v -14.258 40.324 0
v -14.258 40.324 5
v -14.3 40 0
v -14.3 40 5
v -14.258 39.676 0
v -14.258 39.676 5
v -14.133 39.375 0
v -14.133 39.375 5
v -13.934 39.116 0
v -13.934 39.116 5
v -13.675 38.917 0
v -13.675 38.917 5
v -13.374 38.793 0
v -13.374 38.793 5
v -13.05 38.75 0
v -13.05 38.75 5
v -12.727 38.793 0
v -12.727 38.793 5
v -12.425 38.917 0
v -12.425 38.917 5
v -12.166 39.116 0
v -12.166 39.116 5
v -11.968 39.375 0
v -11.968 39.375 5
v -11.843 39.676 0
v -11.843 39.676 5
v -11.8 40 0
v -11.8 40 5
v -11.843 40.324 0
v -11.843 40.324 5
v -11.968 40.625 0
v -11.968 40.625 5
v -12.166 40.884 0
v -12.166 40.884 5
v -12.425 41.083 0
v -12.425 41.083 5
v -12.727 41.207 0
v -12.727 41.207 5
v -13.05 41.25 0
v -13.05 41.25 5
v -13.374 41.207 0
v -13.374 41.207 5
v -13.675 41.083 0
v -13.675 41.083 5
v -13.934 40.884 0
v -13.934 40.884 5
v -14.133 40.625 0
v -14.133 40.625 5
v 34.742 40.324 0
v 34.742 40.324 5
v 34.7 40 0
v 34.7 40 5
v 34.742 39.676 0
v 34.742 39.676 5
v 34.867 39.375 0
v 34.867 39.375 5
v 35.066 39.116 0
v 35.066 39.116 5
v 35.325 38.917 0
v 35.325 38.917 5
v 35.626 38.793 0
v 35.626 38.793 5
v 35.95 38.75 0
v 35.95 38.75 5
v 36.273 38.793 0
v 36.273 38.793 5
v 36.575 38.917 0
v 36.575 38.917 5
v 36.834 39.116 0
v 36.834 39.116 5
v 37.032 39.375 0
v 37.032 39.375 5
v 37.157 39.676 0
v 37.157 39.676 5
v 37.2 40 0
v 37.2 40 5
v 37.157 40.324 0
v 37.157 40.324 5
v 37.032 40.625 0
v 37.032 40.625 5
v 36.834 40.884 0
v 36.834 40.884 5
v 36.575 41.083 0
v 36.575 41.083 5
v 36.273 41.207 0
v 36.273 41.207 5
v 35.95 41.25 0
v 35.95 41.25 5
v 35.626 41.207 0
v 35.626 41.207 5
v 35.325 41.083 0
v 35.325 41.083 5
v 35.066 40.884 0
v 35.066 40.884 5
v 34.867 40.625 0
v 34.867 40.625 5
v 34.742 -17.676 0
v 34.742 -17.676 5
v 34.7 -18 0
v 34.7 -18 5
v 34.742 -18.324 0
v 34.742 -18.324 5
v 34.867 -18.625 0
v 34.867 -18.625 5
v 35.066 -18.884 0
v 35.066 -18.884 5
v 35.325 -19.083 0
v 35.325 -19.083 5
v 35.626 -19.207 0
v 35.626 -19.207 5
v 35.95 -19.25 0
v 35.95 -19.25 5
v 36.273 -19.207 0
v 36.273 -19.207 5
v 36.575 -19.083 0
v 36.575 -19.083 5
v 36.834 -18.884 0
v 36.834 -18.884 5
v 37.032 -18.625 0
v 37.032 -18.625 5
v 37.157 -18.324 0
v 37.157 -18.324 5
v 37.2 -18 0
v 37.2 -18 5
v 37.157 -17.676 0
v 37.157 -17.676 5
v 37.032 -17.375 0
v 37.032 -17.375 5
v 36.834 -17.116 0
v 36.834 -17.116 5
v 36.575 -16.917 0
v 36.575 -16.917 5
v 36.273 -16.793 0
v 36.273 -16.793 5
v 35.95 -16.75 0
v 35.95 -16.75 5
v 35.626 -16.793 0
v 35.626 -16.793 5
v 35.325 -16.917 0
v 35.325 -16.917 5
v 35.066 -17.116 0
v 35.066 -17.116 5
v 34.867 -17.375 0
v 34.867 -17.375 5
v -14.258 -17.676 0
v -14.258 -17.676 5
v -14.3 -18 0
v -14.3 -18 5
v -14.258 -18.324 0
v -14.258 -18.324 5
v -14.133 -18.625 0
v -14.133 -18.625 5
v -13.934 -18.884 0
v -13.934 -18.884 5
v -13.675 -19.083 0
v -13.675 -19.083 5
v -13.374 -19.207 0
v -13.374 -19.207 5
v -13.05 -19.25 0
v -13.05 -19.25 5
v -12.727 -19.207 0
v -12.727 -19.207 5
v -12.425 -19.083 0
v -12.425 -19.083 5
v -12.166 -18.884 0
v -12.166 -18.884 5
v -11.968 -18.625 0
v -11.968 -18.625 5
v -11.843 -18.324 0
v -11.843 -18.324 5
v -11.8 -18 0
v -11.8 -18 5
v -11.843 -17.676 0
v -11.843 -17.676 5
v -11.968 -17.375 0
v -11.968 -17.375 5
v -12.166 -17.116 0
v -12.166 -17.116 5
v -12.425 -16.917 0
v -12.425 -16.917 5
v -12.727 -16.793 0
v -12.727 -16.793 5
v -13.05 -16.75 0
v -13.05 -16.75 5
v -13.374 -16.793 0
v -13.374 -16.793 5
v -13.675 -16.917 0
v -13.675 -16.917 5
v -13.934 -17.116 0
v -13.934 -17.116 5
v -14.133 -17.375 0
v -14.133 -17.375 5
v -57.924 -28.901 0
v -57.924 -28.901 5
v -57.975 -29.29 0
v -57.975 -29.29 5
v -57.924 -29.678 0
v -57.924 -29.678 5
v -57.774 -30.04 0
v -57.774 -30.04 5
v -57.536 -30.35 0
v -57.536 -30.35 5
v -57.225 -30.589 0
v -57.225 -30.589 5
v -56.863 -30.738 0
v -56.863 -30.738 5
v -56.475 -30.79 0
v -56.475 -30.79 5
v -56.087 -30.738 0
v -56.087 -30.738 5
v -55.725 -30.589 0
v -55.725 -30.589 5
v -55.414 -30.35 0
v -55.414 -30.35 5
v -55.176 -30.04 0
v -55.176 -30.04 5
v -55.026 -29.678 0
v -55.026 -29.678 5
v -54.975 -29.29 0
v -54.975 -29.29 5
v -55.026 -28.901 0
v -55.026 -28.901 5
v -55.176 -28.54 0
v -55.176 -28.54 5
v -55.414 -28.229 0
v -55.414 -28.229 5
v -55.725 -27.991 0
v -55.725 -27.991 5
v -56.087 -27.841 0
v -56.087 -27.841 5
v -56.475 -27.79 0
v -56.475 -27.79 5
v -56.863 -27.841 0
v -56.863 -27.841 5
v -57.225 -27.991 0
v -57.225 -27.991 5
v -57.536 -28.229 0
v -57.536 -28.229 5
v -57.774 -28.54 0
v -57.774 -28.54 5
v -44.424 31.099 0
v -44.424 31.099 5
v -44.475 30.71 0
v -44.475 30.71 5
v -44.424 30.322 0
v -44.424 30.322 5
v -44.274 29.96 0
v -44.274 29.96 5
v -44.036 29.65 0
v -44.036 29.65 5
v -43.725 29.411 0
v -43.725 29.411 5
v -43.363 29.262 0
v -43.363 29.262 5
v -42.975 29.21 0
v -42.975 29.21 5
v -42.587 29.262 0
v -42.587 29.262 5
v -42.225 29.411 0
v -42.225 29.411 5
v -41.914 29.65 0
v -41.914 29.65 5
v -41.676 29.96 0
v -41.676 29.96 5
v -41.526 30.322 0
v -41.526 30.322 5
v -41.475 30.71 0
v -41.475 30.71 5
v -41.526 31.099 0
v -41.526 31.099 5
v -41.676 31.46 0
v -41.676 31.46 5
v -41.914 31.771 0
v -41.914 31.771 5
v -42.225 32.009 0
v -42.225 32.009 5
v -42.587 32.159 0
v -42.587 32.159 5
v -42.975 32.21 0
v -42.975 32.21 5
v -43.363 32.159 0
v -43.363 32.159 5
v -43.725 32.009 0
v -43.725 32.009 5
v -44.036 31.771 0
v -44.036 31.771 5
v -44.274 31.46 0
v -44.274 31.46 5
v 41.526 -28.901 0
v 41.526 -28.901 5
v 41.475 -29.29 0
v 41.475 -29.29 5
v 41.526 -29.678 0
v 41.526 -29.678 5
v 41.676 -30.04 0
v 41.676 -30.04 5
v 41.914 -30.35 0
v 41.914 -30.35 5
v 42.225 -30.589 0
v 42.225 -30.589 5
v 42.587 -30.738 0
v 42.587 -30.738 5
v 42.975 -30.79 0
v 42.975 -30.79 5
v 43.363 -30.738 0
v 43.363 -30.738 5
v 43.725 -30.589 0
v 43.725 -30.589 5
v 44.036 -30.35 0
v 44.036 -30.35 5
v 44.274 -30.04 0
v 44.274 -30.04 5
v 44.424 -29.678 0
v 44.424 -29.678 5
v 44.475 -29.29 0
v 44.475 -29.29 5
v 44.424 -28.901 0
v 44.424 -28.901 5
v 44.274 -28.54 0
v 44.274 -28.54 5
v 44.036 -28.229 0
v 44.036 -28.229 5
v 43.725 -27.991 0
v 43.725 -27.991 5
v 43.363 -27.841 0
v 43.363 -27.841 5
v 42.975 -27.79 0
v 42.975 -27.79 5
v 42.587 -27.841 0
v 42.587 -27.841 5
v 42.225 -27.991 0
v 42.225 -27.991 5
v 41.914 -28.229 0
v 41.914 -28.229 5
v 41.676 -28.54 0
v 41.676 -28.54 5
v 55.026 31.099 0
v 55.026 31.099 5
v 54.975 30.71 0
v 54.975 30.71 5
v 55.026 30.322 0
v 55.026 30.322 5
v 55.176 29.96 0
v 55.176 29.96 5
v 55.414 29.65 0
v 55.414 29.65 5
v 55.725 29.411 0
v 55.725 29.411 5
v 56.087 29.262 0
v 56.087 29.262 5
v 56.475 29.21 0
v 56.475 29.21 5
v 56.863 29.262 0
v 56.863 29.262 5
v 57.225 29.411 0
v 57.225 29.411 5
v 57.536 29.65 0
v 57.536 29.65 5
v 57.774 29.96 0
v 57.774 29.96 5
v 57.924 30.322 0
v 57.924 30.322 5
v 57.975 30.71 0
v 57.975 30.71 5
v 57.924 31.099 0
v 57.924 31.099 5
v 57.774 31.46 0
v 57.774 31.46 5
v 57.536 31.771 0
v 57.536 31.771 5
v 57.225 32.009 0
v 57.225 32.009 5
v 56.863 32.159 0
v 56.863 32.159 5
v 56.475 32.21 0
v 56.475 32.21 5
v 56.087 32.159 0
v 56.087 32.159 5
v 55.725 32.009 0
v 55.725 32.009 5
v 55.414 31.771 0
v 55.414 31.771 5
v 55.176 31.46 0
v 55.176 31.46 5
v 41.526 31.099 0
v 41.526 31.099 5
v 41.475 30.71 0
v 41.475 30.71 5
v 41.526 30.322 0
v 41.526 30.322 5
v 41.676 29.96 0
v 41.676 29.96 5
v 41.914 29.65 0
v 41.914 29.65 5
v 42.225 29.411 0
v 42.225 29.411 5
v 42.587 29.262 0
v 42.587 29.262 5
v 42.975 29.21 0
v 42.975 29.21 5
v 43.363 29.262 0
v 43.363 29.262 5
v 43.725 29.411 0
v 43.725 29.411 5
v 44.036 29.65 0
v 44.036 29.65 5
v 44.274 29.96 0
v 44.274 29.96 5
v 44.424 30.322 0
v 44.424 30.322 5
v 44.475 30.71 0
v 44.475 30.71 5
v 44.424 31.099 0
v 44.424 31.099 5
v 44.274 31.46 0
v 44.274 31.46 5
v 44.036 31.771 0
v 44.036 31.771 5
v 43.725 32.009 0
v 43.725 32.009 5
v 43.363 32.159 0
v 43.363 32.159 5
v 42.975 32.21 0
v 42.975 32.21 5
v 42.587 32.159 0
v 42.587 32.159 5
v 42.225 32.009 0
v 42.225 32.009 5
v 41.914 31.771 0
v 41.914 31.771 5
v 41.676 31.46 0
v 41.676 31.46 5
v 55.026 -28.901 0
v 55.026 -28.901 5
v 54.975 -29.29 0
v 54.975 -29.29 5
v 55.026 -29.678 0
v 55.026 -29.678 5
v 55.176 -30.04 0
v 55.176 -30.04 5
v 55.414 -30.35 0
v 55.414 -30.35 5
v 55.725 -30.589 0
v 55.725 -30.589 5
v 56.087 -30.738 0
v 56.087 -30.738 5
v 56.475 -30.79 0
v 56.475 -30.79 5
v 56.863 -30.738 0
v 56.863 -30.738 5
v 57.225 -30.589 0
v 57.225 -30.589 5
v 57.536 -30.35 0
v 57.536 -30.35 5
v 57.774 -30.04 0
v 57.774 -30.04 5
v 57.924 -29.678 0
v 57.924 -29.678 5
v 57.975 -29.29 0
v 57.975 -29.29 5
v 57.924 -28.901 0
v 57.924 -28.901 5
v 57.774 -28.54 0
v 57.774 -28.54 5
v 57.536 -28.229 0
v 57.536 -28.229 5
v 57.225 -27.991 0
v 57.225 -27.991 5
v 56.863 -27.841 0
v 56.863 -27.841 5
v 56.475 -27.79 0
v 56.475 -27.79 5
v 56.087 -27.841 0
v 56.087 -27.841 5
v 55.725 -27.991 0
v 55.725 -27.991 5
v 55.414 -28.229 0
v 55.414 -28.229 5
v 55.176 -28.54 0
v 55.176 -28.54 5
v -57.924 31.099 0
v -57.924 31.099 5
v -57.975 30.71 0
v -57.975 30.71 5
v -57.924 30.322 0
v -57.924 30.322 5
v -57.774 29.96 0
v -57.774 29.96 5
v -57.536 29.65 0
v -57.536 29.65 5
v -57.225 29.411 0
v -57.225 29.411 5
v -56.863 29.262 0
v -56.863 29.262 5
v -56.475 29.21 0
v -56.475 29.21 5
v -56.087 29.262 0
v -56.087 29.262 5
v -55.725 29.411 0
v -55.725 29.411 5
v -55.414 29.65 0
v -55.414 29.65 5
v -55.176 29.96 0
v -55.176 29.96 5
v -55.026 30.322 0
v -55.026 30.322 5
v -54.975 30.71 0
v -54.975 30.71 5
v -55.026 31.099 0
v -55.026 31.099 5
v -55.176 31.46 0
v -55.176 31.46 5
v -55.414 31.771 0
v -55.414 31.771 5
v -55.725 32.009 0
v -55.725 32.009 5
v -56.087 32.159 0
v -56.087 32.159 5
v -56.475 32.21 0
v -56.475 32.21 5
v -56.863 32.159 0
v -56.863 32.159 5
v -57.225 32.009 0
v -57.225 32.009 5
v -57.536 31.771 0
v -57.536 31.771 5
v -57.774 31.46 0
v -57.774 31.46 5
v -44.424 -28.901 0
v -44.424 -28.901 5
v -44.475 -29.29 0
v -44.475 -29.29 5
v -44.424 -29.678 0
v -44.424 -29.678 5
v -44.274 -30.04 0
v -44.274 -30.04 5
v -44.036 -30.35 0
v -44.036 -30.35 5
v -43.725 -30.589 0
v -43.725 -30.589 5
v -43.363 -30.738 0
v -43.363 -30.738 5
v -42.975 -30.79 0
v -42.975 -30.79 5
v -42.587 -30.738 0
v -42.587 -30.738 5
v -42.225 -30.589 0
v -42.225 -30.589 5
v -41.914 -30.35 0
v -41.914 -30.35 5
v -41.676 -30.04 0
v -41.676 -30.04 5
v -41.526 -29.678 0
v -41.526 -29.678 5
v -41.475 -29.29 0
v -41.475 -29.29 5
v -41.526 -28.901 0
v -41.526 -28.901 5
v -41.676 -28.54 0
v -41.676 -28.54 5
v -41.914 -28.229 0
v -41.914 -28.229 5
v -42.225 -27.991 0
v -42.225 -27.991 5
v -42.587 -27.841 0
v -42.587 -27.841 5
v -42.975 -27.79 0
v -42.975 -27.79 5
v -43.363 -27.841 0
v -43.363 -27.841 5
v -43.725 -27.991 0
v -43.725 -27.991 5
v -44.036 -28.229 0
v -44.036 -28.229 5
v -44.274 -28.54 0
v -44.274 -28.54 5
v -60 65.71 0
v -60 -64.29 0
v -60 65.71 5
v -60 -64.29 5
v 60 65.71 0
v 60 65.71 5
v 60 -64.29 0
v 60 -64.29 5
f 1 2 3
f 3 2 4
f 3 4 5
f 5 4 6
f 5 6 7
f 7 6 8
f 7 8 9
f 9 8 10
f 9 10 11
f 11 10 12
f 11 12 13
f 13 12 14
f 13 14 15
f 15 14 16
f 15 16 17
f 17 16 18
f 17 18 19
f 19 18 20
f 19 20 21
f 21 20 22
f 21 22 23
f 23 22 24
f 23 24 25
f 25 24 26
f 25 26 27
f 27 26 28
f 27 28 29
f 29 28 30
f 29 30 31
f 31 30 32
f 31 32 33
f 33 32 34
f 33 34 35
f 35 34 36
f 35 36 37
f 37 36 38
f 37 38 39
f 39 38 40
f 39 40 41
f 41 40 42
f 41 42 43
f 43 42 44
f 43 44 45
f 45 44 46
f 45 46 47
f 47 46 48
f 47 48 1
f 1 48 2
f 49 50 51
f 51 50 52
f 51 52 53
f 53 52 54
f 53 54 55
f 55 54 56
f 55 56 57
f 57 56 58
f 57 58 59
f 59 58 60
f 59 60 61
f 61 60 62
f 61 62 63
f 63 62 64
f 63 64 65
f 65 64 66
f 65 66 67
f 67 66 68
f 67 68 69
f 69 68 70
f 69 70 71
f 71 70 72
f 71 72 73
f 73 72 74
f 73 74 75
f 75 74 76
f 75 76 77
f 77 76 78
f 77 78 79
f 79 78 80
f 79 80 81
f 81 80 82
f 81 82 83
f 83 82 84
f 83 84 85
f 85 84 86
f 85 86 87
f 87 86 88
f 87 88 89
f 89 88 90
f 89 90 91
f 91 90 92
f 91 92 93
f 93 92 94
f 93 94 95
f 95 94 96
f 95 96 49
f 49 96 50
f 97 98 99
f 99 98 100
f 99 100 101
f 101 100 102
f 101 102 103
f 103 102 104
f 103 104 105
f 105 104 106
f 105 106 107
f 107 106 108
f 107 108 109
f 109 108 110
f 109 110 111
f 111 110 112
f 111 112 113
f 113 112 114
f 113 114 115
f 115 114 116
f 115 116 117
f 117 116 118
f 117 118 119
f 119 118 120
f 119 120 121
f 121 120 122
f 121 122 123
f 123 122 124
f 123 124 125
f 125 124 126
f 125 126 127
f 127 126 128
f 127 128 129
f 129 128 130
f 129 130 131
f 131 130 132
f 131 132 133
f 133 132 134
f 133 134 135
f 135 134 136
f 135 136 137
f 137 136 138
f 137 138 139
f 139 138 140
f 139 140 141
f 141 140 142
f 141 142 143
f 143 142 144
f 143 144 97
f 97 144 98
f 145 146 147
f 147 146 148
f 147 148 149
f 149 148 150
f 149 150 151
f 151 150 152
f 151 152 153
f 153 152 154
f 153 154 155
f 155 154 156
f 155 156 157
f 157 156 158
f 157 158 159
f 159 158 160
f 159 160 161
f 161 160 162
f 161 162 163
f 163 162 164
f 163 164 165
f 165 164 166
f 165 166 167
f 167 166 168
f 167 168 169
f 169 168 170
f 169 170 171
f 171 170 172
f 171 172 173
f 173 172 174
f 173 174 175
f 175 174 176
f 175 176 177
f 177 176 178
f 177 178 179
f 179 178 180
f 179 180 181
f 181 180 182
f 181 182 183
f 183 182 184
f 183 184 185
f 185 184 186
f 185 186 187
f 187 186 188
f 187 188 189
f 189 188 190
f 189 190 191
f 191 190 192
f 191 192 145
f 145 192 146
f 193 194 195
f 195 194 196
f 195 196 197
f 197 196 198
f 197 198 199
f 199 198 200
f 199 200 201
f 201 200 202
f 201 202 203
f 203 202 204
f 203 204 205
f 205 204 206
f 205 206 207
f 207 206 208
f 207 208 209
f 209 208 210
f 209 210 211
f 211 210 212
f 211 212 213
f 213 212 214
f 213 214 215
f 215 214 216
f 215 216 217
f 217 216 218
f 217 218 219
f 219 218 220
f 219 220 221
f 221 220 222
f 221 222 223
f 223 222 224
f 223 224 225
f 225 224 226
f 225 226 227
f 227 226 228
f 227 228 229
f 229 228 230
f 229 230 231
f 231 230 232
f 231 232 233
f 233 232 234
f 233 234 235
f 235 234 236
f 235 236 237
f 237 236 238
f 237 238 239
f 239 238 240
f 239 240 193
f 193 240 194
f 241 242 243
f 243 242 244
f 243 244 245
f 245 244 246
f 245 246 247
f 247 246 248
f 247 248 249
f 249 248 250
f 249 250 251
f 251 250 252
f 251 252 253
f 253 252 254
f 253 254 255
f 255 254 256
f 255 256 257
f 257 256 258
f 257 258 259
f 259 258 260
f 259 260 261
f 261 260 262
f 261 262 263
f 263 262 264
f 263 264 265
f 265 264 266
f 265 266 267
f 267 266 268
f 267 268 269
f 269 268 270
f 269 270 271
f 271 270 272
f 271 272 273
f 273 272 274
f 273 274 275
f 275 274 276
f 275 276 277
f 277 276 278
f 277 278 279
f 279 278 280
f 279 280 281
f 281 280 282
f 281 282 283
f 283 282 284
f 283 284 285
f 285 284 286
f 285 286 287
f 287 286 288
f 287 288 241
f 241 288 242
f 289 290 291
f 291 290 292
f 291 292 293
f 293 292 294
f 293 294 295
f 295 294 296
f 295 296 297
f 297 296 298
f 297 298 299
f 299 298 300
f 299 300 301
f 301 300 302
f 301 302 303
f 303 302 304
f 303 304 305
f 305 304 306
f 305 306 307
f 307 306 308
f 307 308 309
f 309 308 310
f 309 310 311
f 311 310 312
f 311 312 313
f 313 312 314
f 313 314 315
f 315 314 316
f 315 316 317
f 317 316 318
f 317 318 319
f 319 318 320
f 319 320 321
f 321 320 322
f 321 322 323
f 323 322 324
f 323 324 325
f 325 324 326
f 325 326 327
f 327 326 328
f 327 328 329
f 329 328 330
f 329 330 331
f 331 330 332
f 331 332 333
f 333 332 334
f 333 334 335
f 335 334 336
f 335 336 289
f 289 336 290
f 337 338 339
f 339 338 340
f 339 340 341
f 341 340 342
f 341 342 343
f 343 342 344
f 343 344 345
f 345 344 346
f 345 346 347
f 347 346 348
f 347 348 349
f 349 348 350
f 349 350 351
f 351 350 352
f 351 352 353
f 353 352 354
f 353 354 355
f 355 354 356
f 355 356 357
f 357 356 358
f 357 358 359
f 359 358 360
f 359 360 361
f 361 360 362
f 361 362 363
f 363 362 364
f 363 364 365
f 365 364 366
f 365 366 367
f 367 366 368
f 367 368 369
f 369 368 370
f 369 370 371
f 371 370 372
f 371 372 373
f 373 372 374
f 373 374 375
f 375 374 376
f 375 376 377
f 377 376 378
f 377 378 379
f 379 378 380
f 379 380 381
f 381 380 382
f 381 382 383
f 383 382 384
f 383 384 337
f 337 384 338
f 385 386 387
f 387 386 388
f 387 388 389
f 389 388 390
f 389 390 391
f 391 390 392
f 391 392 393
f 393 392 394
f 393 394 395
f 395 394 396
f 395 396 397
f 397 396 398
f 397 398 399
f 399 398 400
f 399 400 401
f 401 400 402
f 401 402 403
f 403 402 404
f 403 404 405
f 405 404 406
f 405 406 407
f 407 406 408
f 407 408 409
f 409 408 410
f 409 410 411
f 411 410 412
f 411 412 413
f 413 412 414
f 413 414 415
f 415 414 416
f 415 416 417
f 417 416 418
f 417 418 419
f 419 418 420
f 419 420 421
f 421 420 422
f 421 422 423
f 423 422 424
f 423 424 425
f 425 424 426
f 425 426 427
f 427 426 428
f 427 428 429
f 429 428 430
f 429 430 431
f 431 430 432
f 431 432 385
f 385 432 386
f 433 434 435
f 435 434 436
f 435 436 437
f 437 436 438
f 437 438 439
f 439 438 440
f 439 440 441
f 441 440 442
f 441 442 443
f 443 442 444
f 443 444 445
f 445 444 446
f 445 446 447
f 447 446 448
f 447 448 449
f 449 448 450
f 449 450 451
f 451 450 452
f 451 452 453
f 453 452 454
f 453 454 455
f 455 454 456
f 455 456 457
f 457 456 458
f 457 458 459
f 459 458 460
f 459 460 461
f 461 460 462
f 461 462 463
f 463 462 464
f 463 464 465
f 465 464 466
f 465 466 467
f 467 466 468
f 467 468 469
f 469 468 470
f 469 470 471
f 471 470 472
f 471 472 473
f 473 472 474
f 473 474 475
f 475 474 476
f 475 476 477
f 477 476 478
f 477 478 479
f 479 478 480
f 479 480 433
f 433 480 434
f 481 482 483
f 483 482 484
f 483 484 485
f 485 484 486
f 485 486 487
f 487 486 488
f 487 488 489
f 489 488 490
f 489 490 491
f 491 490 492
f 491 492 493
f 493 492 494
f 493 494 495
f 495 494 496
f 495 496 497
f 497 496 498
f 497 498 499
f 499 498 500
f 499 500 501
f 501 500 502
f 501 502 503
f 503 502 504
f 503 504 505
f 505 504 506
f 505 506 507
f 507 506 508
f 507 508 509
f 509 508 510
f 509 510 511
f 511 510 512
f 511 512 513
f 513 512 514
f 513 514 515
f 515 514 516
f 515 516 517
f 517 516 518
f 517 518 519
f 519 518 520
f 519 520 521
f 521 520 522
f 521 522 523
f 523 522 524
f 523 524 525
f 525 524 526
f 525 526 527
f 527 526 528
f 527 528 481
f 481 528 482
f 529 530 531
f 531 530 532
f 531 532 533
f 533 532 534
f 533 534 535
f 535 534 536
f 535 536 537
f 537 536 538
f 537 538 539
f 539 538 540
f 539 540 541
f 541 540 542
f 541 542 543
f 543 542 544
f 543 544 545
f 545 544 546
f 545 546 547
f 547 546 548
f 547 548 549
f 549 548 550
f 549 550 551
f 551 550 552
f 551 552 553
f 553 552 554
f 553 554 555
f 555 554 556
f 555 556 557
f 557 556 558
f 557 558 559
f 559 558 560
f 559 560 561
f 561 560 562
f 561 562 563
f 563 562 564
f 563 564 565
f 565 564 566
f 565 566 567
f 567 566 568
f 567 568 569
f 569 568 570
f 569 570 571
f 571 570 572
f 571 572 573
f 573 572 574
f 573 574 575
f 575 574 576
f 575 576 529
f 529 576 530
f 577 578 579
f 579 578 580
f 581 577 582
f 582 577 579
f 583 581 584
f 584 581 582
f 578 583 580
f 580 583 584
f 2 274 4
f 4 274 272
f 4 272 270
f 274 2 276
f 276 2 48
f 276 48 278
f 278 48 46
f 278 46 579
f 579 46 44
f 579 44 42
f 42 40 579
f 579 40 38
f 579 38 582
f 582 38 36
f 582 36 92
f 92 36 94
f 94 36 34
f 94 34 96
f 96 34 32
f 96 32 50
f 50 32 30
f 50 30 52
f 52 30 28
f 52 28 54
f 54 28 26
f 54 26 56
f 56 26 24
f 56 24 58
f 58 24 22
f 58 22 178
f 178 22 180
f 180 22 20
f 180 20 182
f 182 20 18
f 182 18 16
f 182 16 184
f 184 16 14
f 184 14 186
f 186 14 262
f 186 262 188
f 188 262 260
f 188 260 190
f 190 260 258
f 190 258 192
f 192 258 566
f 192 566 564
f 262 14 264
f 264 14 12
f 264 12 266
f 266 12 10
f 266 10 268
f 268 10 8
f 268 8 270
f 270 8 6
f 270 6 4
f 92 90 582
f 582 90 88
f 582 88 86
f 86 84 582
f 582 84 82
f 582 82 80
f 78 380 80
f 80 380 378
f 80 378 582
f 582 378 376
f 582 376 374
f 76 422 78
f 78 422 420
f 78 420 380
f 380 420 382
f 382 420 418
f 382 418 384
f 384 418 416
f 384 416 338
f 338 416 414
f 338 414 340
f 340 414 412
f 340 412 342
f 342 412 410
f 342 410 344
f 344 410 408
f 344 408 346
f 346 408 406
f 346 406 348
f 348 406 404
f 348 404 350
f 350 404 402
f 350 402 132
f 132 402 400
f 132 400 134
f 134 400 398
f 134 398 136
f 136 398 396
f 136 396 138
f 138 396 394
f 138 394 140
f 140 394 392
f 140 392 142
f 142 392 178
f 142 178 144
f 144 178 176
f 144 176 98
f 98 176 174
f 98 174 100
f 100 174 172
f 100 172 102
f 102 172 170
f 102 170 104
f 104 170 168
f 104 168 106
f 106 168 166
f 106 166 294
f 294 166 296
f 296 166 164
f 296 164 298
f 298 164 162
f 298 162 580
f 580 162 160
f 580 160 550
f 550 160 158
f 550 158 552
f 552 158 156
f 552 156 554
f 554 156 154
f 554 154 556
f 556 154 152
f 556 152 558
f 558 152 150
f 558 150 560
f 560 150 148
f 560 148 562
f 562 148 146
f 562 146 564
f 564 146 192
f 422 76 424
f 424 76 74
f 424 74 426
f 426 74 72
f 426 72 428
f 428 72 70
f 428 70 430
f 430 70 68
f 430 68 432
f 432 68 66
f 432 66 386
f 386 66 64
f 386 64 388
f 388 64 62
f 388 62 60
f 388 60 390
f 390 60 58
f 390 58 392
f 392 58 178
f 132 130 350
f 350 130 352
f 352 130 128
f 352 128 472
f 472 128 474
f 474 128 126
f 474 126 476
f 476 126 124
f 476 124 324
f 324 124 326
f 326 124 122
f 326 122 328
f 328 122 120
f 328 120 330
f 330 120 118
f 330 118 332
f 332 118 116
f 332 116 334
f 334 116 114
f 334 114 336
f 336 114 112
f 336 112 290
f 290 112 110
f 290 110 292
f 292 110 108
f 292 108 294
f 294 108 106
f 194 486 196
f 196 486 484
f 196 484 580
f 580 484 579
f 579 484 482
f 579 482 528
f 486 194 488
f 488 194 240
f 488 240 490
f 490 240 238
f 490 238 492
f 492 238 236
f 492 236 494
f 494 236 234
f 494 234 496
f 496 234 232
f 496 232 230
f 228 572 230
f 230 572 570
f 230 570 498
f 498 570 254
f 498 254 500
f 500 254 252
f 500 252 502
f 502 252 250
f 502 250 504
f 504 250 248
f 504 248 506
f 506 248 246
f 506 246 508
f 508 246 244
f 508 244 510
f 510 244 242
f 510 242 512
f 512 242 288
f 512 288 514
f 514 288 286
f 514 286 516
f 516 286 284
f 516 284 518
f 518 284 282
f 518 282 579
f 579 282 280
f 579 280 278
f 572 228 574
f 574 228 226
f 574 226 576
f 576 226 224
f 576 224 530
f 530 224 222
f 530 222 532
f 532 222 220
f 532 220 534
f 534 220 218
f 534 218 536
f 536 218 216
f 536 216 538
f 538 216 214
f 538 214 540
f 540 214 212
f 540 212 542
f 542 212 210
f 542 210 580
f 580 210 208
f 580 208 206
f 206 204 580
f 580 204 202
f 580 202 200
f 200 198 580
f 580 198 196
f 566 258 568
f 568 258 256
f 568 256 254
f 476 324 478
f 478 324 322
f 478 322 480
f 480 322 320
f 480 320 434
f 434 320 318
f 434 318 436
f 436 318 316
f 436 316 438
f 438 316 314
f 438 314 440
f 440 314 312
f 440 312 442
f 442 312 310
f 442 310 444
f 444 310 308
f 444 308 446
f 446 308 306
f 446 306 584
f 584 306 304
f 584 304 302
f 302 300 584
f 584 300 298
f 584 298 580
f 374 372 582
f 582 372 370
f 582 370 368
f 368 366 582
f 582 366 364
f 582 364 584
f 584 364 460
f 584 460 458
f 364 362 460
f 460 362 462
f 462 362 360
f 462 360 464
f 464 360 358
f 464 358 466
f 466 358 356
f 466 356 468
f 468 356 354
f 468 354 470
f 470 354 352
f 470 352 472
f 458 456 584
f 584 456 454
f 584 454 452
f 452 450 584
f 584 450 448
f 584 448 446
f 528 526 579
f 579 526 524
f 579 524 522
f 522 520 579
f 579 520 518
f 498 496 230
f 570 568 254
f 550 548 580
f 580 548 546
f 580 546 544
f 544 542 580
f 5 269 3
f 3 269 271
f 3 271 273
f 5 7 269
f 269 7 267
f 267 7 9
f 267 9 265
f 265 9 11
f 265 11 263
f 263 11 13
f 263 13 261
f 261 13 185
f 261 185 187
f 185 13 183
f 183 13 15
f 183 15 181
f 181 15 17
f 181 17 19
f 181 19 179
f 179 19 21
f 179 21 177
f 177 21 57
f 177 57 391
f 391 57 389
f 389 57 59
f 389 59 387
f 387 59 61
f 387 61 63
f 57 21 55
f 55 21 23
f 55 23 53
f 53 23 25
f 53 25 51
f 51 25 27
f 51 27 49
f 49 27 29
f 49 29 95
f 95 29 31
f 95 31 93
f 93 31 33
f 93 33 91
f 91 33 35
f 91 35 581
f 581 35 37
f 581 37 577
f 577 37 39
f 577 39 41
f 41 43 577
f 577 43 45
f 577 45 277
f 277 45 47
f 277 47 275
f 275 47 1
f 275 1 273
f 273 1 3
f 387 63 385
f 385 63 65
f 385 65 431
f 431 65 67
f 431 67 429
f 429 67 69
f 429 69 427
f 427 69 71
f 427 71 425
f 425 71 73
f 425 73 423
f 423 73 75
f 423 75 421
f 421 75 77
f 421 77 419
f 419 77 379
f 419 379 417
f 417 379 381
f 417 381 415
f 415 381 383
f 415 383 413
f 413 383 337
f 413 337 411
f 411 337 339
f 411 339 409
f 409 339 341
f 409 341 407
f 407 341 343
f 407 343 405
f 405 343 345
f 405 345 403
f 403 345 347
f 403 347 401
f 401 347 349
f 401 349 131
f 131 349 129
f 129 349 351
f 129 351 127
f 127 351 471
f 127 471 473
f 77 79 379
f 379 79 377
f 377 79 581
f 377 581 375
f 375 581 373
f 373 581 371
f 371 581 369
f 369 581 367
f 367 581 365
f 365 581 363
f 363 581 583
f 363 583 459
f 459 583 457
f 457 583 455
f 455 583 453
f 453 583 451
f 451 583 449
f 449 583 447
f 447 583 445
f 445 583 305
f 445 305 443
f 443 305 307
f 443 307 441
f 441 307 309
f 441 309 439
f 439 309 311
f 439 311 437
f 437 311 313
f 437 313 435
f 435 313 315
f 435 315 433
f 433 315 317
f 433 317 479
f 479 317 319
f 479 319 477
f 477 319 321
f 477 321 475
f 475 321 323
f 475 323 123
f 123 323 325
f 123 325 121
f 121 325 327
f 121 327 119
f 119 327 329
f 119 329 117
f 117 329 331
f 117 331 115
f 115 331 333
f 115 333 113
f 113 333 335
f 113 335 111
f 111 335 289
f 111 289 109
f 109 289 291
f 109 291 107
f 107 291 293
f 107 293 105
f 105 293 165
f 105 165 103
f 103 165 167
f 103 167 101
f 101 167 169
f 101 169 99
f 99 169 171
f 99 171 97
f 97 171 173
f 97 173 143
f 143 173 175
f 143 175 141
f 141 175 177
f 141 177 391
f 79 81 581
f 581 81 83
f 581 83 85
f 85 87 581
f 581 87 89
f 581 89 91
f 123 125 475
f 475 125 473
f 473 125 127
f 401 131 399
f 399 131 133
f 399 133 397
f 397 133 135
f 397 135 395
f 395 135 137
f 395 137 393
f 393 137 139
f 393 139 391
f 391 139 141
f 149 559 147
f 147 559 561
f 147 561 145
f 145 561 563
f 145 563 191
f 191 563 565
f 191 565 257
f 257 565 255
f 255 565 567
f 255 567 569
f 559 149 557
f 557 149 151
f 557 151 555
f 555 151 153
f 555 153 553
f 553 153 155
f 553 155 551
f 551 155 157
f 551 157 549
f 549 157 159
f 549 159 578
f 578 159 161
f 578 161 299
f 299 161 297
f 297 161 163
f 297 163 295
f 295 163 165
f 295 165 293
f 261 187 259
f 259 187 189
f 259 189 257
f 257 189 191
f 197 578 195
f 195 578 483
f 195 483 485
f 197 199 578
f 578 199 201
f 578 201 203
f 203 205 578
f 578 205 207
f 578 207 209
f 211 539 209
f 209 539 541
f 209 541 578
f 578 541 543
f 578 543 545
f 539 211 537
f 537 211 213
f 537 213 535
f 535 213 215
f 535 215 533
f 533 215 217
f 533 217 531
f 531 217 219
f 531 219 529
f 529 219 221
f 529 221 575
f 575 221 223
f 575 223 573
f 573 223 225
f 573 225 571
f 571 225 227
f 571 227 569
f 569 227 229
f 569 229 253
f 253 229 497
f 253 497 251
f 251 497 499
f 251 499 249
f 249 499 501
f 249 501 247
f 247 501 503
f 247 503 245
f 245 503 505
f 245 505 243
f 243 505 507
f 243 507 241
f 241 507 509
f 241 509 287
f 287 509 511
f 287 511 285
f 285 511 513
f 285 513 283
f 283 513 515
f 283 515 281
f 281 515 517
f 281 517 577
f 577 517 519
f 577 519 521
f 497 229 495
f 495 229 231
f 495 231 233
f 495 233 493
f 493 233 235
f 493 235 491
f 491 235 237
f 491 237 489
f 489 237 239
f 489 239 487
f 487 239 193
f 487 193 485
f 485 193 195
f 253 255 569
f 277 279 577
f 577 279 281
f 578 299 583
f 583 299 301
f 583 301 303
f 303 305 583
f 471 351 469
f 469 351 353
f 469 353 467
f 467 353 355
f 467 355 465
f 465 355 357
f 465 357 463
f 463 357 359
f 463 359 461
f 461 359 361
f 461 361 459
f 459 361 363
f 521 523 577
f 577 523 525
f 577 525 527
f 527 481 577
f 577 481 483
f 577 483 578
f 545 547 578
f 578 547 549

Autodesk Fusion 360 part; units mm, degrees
sketch "Sketch1" plane through (0, 0, 0) normal (0, 0, 1) x (1, 0, 0)
  line L0 (-102.5159, 0.7104) -> (97.4841, 0.7104) construction
  line L1 (0, 100) -> (0, -100) construction
  line L2 (-60, 65.7104) -> (60, 65.7104)
  line L3 (60, 65.7104) -> (60, -64.2896)
  line L4 (60, -64.2896) -> (-60, -64.2896)
  line L5 (-60, -64.2896) -> (-60, 65.7104)
  line L6 (60, 30.7104) -> (39.4499, 30.7104) construction
  line L7 (39.4499, 30.7104) -> (39.4499, -29.2896) construction
  line L8 (39.4499, -29.2896) -> (60, -29.2896) construction
  line L9 (60, -29.2896) -> (60, 30.7104) construction
  line L10 (49.7249, 30.7104) -> (49.7249, -29.2896) construction
  line L11 (56.4749, 30.7104) -> (42.9749, 30.7104) construction
  line L12 (42.9749, 30.7104) -> (42.9749, -29.2896) construction
  line L13 (42.9749, -29.2896) -> (56.4749, -29.2896) construction
  line L14 (56.4749, -29.2896) -> (56.4749, 30.7104) construction
  line L15 (-56.4749, -29.2896) -> (-56.4749, 30.7104) construction
  line L16 (-42.9749, 30.7104) -> (-42.9749, -29.2896) construction
  line L17 (-60, 30.7104) -> (-39.4499, 30.7104) construction
  line L18 (-42.9749, -29.2896) -> (-56.4749, -29.2896) construction
  line L19 (-39.4499, 30.7104) -> (-39.4499, -29.2896) construction
  line L20 (-49.7249, 30.7104) -> (-49.7249, -29.2896) construction
  line L21 (-39.4499, -29.2896) -> (-60, -29.2896) construction
  line L22 (39.4499, 43.2104) -> (-16.5501, 43.2104) construction
  line L23 (-16.5501, 43.2104) -> (-16.5501, -41.7896) construction
  line L24 (-16.5501, -41.7896) -> (39.4499, -41.7896) construction
  line L25 (39.4499, -41.7896) -> (39.4499, 43.2104) construction
  line L26 (35.9499, 40) -> (-13.0501, 40) construction
  line L27 (-13.0501, 40) -> (-13.0501, -18) construction
  line L28 (-13.0501, -18) -> (35.9499, -18) construction
  line L29 (35.9499, -18) -> (35.9499, 40) construction
  line L30 (11.4499, 43.2104) -> (11.4499, -41.7896) construction
  dimension "d1" = 200
  dimension "d2" = 200
  dimension "d3" = 120
  dimension "d4" = 130
  dimension "d5" = 60
  dimension "d6" = 13.5
  dimension "d7" = 56
  dimension "d8" = 85
  dimension "d9" = 49
  dimension "d10" = 58
extrude "Extrude1" add sketch "Sketch1" along normal blind 5
hole "Hole1" at (56.4749, 30.7104, 0) at (42.9749, 30.7104, 0) at (42.9749, -29.2896, 0) at (56.4749, -29.2896, 0) at (-42.9749, 30.7104, 0) at (-56.4749, 30.7104, 0) at (-56.4749, -29.2896, 0) at (-42.9749, -29.2896, 0) direction (0, 0, 1) diameter 3 depth 5 tip angle 180
hole "Hole2" at (35.9499, 40, 0) at (35.9499, -18, 0) at (-13.0501, 40, 0) at (-13.0501, -18, 0) direction (0, 0, 1) diameter 2.5 depth 5 tip angle 180
